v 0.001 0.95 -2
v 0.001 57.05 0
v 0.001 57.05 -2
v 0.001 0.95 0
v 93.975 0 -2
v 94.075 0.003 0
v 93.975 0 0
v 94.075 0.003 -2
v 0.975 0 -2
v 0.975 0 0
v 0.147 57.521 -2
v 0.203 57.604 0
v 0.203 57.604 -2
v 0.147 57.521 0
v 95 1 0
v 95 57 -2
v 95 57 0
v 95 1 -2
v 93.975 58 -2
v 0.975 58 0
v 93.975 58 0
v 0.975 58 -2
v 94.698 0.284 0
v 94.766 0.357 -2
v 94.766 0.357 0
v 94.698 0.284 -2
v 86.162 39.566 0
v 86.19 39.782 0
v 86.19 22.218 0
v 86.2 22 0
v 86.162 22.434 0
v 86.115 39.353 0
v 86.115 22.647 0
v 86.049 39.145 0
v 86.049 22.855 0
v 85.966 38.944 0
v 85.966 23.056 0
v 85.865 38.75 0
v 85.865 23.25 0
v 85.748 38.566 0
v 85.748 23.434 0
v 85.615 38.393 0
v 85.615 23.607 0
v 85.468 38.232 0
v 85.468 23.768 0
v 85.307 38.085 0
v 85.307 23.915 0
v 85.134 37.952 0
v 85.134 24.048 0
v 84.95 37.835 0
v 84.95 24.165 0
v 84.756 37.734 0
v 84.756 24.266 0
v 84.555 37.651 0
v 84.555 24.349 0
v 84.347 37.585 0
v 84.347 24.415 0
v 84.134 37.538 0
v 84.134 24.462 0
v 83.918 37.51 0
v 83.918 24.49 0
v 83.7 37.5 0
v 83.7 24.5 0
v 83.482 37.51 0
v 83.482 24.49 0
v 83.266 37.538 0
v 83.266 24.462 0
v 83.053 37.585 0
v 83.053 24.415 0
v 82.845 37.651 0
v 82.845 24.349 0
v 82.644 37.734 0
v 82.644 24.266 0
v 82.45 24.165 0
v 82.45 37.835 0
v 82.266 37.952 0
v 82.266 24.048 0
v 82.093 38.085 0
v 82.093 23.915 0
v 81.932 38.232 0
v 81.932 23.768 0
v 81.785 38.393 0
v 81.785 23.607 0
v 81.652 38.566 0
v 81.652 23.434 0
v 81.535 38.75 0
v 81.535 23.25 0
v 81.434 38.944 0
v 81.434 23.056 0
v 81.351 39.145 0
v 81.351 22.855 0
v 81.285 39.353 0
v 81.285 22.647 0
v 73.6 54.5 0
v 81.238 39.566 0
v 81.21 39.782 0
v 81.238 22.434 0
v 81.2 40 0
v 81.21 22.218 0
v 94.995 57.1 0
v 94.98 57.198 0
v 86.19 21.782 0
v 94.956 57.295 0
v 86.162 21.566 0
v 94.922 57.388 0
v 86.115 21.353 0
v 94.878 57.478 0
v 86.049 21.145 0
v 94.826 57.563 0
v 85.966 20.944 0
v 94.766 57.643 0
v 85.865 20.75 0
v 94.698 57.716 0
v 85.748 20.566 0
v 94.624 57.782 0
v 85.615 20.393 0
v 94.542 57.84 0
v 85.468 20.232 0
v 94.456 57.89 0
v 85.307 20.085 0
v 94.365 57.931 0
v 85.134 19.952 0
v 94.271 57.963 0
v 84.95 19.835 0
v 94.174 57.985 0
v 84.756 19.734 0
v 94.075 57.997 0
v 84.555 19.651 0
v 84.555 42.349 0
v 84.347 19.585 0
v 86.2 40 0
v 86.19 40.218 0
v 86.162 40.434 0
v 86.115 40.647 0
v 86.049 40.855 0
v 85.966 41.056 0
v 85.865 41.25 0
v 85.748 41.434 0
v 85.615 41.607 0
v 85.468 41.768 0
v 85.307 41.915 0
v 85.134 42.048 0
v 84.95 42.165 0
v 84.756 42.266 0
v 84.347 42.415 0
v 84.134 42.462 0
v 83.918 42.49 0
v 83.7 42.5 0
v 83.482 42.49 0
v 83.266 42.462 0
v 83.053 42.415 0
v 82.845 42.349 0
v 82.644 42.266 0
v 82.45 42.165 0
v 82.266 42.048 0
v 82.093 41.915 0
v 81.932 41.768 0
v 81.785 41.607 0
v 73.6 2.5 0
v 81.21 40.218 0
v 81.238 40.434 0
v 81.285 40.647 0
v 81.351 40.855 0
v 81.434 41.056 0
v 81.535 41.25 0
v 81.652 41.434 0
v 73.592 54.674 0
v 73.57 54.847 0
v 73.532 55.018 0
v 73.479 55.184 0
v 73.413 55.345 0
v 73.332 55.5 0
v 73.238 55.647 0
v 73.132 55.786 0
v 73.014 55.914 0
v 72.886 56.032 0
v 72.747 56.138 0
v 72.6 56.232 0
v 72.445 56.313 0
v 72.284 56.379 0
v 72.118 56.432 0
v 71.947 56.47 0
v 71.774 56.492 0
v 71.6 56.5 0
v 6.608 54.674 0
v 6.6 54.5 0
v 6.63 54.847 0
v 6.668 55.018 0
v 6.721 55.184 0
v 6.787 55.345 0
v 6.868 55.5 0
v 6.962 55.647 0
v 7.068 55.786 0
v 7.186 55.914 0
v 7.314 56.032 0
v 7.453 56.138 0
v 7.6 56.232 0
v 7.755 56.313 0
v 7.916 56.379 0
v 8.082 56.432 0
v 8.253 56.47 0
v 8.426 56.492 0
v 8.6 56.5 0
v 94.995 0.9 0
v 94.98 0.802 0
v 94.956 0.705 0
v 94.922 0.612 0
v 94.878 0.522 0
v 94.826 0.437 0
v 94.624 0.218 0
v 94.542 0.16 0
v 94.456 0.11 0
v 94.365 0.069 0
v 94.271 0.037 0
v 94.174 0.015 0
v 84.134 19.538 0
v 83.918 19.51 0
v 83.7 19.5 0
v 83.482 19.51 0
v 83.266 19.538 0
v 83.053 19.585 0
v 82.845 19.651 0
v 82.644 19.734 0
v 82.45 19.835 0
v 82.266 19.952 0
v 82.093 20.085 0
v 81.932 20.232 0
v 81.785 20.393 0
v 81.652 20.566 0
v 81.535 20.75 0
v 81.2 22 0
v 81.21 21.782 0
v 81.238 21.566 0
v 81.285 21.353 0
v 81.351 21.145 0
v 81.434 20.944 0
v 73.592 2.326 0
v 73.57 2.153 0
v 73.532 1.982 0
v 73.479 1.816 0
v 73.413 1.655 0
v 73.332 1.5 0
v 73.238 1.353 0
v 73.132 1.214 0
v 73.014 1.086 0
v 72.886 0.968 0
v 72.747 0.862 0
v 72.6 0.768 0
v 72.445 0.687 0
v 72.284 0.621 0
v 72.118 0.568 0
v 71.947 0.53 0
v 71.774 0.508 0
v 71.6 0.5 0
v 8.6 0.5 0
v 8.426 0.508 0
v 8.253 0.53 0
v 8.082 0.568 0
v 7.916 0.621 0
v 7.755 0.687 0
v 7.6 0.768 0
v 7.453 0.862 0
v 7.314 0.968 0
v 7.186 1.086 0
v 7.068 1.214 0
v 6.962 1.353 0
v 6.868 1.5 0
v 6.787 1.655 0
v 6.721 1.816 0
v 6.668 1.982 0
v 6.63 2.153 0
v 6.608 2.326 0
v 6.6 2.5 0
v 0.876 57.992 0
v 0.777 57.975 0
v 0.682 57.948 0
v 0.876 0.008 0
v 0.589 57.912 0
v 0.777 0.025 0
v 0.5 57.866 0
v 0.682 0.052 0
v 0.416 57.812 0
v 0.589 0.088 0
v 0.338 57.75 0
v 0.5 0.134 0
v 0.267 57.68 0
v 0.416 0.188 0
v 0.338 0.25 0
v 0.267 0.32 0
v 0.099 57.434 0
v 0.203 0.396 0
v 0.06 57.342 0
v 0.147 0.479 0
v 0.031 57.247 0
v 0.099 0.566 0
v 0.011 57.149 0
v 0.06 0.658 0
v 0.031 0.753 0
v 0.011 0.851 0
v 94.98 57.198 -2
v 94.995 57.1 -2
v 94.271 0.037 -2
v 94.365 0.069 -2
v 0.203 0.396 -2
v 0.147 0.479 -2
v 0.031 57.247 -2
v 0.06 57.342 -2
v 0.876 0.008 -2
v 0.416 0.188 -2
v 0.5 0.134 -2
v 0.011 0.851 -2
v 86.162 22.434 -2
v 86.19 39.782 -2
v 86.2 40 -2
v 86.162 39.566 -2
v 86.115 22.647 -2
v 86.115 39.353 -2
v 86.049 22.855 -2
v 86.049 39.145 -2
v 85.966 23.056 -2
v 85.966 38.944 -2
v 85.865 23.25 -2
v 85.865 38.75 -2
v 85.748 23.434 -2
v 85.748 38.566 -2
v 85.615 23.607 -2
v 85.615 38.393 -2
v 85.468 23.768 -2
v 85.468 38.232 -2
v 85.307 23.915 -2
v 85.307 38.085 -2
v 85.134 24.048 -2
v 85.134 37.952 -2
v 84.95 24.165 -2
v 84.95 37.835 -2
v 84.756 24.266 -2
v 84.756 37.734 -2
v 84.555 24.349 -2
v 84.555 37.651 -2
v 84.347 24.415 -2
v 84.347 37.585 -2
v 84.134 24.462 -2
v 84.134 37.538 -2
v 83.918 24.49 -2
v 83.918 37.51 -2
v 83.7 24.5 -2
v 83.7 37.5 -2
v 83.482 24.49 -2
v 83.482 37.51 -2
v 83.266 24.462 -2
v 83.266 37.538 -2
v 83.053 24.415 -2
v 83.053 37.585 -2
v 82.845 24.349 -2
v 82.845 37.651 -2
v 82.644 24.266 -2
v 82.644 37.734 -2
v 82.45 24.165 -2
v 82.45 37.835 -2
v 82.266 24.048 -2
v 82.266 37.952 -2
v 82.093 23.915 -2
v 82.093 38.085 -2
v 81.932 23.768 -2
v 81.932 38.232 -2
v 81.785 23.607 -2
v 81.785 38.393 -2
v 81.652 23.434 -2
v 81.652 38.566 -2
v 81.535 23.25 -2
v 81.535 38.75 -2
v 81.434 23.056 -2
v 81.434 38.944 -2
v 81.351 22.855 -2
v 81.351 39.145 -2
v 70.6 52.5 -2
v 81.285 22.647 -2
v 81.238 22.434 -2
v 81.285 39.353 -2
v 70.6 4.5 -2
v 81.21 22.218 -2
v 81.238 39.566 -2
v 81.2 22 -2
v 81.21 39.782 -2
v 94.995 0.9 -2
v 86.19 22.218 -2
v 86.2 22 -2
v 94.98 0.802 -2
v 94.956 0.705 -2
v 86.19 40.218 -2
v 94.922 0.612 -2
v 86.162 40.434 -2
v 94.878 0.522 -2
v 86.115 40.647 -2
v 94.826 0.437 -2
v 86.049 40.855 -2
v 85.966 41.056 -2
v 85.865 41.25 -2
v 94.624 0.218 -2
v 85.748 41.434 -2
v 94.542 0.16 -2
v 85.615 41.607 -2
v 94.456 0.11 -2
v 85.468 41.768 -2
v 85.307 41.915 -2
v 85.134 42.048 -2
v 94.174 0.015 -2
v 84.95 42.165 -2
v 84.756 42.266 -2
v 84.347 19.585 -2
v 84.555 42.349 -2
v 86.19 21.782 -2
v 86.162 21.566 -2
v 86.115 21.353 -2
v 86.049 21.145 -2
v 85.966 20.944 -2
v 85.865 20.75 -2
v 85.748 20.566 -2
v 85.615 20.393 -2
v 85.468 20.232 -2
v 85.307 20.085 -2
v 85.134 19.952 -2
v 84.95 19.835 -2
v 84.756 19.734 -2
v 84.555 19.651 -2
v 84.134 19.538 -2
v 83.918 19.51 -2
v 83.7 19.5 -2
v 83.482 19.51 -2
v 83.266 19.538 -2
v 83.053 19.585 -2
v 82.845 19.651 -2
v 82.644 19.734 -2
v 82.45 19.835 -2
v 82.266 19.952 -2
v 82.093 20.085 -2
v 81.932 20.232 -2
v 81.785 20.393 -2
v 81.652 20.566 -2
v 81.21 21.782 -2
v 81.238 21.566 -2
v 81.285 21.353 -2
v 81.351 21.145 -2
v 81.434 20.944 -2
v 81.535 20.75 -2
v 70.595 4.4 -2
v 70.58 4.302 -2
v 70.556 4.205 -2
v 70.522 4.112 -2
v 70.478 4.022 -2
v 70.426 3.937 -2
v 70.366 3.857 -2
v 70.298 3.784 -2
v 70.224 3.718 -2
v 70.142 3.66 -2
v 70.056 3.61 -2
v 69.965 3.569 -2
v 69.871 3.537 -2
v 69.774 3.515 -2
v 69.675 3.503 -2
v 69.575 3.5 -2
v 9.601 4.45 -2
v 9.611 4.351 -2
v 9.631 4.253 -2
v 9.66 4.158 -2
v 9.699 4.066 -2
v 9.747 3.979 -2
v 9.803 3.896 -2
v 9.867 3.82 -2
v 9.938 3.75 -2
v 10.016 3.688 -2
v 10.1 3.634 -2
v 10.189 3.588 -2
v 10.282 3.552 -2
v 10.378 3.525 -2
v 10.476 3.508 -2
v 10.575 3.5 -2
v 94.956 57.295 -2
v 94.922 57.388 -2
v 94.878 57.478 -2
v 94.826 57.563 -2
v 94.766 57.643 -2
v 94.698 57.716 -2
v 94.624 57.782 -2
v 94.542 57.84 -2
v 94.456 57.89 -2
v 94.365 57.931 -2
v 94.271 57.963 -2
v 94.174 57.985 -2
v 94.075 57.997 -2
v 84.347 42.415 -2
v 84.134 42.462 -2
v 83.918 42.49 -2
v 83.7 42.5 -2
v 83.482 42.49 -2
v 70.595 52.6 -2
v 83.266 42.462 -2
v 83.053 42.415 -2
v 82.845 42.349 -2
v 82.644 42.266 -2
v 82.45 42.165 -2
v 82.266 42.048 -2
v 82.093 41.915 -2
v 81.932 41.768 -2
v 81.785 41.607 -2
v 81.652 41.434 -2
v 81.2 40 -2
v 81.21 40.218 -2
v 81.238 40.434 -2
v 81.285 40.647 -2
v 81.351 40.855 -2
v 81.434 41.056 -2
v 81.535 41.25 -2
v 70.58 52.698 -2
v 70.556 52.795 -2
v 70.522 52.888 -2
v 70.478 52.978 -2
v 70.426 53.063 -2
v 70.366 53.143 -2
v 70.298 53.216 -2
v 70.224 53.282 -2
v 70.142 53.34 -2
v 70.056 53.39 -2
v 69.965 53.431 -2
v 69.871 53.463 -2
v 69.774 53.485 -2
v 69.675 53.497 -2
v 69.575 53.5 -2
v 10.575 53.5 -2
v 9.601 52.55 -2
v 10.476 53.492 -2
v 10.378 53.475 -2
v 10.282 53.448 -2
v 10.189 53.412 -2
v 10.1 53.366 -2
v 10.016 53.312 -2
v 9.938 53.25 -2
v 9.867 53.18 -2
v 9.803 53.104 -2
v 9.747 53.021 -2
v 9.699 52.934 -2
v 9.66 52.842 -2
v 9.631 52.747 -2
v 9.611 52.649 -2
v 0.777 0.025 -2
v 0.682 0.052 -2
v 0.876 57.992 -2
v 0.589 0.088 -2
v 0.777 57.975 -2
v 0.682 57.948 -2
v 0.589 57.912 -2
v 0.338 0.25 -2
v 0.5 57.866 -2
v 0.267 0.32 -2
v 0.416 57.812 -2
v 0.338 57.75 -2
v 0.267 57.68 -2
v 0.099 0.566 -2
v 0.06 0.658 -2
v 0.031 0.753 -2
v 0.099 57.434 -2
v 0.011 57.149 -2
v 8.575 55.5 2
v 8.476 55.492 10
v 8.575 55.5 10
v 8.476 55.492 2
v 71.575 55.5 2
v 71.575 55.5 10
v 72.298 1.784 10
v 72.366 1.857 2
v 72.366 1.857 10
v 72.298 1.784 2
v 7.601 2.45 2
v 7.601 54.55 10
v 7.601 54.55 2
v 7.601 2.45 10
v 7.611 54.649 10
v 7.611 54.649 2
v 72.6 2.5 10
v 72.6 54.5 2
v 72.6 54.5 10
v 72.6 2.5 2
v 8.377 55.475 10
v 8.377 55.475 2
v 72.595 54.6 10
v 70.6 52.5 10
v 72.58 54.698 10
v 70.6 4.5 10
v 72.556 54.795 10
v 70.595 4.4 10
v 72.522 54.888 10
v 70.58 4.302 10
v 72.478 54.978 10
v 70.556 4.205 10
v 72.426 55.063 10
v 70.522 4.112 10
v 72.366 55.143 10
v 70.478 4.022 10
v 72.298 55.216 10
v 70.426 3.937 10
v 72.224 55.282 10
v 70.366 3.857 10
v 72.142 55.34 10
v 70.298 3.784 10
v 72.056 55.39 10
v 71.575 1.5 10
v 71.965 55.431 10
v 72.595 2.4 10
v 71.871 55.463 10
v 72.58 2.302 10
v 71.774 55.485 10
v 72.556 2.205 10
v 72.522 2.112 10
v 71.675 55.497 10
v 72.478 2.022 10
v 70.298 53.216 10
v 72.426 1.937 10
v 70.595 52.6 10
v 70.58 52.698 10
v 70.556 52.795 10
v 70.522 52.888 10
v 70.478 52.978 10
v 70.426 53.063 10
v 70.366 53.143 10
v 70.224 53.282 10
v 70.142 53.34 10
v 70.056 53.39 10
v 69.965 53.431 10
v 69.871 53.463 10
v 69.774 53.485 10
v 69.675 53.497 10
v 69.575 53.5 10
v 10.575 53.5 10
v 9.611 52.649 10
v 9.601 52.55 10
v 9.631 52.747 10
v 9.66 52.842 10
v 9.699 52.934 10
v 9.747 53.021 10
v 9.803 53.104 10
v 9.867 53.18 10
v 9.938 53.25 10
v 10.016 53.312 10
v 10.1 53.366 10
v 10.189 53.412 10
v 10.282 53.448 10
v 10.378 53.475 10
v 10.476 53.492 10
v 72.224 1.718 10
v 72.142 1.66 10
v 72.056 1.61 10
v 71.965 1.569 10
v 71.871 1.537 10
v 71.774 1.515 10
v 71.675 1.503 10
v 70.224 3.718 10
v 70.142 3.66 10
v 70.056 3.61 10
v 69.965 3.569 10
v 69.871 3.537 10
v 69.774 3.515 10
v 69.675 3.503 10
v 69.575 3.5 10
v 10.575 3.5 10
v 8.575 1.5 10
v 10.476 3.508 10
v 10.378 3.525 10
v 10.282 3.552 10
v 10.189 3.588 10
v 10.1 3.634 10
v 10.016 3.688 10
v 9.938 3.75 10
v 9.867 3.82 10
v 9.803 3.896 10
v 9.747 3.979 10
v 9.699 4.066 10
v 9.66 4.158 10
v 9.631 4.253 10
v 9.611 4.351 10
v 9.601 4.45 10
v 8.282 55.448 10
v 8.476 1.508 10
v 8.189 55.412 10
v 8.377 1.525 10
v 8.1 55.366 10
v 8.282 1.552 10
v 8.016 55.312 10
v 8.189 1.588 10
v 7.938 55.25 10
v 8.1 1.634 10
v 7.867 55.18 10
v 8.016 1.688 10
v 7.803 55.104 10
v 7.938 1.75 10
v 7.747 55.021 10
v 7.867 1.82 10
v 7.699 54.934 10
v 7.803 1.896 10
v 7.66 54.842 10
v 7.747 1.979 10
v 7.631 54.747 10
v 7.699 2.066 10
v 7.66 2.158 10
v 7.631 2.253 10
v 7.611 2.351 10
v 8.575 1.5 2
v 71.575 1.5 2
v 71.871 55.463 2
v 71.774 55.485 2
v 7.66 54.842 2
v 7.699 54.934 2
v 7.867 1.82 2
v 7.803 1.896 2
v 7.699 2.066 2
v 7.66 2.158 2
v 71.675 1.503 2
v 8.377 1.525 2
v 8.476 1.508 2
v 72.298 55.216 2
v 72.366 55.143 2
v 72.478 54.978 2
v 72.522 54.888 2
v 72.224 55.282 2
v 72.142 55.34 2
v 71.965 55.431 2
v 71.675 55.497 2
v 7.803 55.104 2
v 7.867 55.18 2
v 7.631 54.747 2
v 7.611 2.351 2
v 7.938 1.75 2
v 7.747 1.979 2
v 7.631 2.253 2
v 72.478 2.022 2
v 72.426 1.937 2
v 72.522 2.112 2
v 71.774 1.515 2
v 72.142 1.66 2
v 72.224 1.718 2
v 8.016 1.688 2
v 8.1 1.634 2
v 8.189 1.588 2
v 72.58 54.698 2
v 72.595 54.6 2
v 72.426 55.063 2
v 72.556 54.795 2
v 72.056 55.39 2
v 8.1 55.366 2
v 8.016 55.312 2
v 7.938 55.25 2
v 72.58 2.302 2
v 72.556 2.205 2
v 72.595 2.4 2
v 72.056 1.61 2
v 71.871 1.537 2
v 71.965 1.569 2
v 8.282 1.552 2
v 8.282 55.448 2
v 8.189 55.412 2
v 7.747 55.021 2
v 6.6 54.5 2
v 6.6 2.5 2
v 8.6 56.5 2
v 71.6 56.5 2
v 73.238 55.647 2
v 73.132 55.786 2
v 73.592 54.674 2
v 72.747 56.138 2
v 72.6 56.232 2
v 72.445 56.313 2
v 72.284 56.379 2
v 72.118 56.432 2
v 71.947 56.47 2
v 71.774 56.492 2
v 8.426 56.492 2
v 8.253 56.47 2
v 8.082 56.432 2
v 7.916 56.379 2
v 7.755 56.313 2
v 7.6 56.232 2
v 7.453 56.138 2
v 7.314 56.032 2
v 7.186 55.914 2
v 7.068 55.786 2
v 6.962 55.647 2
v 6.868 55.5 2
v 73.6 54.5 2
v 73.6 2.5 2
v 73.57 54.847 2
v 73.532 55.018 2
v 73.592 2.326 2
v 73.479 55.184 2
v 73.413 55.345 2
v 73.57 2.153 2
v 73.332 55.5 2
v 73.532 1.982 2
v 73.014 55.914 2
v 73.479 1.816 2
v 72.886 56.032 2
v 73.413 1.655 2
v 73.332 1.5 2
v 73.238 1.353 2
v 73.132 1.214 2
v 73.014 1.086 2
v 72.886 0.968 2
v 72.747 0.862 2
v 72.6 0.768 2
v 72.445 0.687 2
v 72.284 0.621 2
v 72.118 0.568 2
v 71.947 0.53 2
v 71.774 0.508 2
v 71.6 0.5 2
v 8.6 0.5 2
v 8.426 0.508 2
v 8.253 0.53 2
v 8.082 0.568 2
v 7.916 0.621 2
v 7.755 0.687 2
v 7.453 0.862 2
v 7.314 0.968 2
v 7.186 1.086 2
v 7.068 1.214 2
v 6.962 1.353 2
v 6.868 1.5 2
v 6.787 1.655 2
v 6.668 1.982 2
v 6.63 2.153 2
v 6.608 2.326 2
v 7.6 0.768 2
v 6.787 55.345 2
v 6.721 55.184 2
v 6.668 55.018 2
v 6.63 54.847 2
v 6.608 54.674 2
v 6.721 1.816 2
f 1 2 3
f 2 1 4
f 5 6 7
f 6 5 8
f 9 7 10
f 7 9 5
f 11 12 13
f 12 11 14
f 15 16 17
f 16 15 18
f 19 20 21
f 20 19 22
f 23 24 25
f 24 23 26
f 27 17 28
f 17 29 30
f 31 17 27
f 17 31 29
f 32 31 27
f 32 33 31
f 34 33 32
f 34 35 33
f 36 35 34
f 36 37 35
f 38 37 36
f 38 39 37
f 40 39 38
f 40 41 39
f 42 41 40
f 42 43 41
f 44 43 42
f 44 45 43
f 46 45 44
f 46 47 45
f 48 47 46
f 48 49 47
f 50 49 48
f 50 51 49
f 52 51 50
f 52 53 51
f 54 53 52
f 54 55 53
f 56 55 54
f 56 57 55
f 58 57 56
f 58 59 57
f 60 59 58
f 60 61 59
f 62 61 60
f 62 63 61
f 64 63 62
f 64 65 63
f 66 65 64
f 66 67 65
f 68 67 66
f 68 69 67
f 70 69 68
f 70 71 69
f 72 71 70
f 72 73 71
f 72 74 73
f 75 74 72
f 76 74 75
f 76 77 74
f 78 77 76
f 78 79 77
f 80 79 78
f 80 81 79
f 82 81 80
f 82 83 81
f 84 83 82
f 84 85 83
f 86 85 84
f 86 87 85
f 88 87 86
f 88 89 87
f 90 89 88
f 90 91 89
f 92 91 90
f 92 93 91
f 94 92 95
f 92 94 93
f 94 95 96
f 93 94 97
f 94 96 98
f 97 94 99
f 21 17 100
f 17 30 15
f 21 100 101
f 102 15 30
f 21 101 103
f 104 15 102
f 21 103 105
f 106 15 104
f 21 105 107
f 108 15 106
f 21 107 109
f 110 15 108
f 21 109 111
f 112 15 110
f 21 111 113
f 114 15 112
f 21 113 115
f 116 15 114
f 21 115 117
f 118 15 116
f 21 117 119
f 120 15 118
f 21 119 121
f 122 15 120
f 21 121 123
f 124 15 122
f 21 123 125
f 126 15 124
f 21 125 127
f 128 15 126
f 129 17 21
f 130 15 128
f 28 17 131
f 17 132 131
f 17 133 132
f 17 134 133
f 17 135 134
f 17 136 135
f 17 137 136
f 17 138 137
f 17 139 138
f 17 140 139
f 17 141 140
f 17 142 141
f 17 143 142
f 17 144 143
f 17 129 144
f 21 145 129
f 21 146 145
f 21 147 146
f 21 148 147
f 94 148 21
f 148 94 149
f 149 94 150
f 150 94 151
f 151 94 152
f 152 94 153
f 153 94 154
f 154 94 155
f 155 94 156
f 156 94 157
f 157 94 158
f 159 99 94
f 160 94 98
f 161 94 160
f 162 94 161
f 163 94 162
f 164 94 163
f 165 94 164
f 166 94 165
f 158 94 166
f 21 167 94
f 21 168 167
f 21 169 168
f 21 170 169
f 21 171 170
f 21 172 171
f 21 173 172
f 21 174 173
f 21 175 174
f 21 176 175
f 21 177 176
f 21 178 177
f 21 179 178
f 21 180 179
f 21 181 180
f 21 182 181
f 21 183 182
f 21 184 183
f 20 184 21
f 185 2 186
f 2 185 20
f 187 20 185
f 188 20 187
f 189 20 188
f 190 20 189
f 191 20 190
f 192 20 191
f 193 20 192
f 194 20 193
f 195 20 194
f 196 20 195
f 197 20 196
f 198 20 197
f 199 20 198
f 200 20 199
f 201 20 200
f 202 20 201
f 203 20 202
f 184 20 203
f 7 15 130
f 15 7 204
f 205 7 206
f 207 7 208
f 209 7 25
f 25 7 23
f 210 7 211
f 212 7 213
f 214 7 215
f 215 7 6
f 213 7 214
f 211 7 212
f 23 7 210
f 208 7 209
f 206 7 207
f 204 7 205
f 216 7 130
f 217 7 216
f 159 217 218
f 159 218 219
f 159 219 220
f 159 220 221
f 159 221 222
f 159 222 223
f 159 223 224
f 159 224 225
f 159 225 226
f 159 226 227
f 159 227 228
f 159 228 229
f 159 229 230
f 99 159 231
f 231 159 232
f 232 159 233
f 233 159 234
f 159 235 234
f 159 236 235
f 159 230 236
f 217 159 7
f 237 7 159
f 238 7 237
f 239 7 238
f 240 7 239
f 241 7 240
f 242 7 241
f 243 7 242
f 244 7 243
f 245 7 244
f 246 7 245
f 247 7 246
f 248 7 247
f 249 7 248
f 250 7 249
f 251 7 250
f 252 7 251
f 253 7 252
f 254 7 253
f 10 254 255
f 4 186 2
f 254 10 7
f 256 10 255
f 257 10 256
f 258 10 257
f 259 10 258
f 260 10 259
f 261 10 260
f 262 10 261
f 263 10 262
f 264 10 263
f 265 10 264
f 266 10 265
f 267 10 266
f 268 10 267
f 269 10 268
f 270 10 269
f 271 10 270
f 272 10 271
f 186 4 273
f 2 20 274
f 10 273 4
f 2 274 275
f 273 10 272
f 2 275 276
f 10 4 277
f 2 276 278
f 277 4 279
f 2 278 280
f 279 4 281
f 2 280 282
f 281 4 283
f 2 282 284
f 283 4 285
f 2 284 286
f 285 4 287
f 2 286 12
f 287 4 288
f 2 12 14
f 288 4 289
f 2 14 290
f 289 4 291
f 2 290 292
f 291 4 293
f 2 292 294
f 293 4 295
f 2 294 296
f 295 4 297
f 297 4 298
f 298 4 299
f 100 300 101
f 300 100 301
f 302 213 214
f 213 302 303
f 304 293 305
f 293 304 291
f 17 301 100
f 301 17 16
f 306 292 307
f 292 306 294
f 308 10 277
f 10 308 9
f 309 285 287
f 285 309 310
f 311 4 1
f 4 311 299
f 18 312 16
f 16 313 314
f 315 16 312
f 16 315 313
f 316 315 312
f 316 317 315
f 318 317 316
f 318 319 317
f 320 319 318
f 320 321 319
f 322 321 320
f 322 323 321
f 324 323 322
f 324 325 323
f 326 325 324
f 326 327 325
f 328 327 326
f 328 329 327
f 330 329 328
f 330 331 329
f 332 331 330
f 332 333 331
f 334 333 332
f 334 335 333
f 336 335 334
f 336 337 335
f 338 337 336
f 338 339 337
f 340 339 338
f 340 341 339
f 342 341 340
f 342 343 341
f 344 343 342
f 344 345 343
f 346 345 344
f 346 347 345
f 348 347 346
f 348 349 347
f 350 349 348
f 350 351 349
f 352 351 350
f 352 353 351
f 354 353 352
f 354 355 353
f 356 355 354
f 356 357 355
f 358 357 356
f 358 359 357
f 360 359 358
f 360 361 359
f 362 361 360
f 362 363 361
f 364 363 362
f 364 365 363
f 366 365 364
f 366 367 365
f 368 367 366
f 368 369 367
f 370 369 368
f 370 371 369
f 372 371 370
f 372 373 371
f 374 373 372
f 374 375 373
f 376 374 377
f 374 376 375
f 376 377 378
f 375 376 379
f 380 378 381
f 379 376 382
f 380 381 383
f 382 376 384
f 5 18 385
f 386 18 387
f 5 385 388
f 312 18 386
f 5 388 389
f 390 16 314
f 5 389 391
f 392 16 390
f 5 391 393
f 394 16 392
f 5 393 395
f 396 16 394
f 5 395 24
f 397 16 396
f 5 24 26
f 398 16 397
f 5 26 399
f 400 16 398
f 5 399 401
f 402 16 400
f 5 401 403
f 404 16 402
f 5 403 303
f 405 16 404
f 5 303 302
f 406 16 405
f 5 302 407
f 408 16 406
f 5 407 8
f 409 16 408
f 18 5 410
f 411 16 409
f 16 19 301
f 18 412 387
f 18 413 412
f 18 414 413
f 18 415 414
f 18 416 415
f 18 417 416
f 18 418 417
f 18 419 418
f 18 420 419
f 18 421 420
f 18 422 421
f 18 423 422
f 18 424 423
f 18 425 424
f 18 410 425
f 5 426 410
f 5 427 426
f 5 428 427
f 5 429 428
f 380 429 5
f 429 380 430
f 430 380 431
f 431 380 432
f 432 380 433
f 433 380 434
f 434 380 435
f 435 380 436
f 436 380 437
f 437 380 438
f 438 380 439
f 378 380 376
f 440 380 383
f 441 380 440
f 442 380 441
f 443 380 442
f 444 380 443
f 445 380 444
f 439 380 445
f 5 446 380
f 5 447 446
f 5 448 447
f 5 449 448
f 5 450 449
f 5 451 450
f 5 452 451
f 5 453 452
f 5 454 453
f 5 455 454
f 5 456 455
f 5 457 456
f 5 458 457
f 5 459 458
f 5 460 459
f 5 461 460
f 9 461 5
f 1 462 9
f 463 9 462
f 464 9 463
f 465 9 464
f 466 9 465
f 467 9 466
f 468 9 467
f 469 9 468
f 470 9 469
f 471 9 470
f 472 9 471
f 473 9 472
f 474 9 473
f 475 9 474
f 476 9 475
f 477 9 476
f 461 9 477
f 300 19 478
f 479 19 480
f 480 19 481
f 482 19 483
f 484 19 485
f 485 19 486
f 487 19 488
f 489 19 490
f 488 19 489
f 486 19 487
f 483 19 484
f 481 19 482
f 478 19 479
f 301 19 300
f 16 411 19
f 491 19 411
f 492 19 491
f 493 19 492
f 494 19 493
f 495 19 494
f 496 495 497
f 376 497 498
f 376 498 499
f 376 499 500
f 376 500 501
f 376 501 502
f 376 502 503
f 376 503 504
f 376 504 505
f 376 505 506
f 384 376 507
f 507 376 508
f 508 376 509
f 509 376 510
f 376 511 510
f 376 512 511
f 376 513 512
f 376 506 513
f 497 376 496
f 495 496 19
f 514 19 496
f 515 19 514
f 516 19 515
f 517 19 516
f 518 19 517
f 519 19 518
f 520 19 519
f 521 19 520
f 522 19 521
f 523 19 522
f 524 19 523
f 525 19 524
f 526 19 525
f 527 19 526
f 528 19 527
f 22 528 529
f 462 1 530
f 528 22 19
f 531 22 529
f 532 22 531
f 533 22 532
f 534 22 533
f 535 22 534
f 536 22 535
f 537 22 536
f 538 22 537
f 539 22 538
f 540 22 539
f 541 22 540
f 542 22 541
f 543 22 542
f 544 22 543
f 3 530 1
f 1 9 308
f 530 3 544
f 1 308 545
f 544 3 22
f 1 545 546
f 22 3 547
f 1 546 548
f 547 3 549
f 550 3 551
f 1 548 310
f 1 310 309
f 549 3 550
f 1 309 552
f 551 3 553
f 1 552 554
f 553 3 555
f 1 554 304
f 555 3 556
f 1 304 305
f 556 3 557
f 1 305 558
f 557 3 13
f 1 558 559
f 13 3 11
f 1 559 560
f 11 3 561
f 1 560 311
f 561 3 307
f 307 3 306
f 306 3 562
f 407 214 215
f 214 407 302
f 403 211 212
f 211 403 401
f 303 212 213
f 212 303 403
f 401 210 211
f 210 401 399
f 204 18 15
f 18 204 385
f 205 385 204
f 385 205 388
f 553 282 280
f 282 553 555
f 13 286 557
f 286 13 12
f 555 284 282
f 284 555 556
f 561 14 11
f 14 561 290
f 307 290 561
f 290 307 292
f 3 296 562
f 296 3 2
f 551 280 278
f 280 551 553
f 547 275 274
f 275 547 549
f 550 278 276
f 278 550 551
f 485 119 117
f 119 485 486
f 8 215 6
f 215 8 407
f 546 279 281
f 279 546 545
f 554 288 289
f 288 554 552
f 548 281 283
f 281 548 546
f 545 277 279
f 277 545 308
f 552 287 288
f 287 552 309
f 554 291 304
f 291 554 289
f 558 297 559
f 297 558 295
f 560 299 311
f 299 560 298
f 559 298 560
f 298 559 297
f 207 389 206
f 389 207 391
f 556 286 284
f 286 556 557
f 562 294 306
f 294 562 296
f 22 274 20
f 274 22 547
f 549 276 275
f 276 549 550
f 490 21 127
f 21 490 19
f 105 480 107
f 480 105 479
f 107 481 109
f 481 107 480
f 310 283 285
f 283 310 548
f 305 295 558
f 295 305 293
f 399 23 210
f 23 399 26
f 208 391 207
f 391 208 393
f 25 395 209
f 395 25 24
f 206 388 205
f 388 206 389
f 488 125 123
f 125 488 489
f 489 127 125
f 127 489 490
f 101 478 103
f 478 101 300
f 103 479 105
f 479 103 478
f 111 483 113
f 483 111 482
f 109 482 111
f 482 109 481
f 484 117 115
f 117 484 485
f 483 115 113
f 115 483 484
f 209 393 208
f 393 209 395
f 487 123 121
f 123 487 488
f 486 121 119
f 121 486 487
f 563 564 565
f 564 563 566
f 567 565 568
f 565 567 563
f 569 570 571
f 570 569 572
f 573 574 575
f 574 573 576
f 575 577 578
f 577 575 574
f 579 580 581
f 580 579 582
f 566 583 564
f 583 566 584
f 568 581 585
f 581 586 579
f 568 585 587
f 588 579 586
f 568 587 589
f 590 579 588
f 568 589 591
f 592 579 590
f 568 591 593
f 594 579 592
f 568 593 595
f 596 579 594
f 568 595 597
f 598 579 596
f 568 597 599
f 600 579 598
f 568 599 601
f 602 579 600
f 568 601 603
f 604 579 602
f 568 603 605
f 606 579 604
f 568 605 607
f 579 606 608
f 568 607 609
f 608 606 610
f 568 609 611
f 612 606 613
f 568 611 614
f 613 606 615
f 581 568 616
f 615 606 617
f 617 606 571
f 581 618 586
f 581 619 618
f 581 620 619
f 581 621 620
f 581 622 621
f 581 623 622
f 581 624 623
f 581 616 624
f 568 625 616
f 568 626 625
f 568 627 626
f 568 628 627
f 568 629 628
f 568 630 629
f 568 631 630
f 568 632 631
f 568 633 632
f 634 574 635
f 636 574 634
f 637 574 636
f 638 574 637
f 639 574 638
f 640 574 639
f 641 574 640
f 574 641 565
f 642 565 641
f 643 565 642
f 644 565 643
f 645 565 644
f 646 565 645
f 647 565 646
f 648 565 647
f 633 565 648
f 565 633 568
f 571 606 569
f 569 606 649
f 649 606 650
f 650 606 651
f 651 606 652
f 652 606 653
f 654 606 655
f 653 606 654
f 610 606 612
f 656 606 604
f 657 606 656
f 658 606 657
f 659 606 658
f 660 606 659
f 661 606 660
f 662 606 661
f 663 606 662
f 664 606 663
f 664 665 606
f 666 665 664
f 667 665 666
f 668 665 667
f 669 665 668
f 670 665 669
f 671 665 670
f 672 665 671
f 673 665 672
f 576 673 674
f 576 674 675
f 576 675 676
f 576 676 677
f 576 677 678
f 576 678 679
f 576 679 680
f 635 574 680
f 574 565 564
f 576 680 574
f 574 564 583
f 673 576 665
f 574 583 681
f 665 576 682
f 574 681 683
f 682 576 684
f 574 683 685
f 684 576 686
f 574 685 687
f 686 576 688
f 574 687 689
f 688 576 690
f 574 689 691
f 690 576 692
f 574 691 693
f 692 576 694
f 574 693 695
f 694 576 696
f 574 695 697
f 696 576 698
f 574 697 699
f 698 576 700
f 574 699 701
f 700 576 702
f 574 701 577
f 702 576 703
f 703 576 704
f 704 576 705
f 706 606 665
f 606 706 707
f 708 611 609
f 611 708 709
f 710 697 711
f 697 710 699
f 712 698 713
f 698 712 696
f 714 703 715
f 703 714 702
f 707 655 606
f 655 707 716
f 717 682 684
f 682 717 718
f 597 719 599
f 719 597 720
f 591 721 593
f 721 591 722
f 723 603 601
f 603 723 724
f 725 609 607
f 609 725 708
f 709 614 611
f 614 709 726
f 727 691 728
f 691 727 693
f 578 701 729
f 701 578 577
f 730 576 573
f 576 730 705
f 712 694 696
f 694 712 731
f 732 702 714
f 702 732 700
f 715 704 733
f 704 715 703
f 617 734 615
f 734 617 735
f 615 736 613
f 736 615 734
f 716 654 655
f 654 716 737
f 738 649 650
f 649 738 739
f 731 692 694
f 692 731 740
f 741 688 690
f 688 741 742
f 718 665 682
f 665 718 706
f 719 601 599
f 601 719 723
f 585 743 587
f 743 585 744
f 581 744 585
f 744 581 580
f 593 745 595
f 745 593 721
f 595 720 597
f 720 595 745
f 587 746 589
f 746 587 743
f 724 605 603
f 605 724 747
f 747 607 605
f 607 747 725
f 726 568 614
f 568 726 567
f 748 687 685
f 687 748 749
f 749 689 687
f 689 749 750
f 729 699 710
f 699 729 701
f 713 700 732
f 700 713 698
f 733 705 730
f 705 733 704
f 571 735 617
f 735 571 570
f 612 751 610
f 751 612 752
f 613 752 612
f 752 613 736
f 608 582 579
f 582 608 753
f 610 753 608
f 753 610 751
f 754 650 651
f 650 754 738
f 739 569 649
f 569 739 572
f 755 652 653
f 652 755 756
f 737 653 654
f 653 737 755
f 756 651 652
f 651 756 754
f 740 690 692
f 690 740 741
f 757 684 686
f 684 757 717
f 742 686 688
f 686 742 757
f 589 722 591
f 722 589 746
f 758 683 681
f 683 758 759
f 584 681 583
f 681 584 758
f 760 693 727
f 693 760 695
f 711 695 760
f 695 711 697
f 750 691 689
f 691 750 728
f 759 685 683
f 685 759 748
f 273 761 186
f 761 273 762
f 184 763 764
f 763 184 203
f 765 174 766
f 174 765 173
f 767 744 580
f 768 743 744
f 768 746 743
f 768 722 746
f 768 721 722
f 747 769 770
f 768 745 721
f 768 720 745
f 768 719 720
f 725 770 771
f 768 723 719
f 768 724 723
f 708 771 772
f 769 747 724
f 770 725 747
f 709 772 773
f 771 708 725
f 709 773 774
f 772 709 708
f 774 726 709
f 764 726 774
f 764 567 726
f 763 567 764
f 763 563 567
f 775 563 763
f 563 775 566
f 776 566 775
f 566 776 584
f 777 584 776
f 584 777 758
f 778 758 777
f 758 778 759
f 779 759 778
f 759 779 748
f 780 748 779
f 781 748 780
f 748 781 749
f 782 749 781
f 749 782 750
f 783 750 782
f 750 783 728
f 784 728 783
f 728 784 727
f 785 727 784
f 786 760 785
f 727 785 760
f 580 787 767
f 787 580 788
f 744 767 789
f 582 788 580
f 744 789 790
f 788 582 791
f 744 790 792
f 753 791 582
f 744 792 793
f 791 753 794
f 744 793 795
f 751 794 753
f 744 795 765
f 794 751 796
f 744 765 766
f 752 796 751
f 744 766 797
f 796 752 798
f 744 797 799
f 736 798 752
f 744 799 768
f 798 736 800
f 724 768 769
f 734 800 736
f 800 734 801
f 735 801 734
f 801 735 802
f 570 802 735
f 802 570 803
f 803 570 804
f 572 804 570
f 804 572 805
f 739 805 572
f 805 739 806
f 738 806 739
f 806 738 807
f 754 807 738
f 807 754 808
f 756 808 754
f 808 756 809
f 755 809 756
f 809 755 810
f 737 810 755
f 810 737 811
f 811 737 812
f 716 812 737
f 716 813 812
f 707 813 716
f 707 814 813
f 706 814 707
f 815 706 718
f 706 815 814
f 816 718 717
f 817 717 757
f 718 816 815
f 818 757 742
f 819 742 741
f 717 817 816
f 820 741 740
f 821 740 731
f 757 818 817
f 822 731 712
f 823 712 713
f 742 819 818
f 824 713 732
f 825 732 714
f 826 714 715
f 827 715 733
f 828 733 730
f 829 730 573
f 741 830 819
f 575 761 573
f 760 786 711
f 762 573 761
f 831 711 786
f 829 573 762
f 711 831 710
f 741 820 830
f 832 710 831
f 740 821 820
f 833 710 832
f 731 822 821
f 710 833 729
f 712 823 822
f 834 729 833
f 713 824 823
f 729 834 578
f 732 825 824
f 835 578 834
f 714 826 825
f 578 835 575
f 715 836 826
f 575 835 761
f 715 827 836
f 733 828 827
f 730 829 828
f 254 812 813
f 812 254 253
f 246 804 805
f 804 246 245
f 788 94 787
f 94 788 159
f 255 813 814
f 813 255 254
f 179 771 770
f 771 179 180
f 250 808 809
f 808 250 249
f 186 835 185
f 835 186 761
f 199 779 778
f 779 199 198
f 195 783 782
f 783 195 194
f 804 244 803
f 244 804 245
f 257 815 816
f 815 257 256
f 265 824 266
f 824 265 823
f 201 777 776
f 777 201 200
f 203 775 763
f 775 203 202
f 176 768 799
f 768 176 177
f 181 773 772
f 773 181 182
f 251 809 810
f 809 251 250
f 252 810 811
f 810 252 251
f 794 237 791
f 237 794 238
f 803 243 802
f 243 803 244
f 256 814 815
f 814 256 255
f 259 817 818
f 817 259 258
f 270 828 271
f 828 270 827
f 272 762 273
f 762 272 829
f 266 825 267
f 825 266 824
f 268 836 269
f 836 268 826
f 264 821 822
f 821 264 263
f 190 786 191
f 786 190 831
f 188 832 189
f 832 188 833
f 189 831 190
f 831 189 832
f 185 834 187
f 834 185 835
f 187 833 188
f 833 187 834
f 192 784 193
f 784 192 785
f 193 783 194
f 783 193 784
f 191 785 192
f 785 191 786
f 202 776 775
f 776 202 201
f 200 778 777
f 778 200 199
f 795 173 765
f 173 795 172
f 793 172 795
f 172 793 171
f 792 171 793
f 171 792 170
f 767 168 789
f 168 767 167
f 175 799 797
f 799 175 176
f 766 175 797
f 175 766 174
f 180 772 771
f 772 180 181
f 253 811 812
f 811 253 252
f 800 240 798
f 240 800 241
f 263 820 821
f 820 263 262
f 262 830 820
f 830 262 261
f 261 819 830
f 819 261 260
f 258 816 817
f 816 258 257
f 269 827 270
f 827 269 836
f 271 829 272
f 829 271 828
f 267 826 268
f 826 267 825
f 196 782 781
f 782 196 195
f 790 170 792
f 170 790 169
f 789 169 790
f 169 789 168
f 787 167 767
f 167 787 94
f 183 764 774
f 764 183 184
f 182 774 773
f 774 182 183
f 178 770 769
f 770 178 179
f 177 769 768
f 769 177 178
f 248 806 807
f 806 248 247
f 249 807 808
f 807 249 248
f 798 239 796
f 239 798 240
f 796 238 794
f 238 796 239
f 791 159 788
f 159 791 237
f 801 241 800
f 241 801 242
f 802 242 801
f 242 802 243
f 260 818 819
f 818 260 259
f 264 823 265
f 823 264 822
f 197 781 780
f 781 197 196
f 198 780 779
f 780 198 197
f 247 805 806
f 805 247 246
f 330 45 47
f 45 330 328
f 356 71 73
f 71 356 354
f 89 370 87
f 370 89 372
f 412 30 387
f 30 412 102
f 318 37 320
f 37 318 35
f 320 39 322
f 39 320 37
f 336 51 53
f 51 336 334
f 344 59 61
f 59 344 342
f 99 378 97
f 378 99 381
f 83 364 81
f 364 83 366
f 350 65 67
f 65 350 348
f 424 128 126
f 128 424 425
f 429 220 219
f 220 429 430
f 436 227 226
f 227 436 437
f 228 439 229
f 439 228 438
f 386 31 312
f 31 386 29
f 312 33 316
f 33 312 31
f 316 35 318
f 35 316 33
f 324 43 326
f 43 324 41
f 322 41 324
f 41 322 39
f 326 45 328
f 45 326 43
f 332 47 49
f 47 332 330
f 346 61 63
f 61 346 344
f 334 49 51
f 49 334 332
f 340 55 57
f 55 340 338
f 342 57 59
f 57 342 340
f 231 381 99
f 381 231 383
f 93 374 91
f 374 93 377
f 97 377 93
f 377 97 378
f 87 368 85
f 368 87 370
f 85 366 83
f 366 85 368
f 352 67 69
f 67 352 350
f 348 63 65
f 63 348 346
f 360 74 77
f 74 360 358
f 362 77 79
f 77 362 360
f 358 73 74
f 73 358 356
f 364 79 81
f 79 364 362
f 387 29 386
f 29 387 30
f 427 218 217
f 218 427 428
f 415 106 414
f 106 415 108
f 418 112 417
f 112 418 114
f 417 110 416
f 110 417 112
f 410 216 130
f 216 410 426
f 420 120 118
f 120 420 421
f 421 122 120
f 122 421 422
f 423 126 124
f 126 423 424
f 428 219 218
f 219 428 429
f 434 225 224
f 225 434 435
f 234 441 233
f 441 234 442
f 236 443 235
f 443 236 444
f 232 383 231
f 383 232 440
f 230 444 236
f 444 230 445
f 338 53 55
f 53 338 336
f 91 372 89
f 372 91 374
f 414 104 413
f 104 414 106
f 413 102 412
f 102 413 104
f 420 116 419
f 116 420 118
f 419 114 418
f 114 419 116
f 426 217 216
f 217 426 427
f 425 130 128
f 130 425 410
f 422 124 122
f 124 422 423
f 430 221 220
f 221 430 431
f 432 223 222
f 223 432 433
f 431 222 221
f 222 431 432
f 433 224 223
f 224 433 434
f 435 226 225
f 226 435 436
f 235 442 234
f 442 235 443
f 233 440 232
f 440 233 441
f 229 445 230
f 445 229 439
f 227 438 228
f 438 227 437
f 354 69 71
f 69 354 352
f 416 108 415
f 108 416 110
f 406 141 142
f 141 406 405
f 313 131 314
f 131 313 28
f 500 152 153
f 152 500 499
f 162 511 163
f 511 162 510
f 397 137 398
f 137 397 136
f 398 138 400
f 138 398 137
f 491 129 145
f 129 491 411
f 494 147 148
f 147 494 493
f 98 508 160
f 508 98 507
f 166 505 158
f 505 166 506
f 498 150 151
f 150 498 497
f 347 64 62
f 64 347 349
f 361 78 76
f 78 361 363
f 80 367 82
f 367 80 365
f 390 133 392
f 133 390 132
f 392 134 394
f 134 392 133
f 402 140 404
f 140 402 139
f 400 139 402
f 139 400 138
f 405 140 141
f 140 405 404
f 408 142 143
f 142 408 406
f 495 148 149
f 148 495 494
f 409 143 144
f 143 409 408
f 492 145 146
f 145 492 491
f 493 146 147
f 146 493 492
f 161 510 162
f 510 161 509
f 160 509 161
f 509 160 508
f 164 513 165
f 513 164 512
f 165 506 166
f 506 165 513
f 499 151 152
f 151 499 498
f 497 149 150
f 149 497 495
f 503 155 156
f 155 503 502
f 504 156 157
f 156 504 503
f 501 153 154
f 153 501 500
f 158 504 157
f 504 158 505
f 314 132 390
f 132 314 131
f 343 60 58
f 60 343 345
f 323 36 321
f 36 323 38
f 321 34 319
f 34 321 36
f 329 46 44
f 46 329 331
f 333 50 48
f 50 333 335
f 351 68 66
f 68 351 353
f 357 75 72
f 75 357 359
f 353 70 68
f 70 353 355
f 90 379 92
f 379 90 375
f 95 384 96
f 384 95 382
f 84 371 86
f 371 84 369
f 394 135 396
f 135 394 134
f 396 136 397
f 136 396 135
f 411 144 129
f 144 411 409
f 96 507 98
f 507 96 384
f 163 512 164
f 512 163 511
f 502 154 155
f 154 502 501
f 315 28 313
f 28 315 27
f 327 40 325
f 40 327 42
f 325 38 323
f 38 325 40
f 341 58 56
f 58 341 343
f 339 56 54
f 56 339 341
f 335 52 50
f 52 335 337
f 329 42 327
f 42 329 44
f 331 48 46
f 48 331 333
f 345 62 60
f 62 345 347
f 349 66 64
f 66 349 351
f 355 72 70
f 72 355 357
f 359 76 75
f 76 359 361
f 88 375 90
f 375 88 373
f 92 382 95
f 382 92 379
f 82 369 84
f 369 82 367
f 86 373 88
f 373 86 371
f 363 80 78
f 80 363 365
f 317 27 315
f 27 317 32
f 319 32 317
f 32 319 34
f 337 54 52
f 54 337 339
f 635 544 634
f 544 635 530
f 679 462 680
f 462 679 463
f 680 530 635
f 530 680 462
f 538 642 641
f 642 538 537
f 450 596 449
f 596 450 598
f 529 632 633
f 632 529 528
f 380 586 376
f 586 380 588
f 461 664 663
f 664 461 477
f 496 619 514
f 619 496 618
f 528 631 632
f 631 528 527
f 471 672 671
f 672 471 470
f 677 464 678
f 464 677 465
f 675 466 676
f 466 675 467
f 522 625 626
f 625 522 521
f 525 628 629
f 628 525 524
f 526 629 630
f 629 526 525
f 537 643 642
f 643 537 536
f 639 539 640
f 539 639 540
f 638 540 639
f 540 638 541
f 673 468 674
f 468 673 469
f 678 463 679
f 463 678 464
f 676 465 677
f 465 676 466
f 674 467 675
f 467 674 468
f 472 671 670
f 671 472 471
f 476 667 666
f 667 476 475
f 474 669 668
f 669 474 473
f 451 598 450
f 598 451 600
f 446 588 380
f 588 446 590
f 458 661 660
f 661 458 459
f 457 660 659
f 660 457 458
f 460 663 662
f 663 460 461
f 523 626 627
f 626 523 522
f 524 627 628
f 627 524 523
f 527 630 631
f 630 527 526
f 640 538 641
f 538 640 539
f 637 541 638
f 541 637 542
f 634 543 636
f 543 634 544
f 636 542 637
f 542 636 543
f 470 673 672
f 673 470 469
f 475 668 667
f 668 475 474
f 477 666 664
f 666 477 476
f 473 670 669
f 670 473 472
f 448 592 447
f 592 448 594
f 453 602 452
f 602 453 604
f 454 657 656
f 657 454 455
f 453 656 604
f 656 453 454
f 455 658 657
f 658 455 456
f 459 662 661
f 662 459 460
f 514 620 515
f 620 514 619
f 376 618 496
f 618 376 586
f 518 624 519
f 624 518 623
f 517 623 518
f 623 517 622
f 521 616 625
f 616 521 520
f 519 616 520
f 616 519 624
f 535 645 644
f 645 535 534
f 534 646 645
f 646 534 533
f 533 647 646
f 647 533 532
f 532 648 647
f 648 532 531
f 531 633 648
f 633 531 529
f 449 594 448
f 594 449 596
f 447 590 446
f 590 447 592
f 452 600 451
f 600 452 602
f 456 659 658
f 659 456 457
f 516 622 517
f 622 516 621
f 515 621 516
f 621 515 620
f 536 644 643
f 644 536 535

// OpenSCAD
$fa=5; $fs=0.1;

W=95;
H=58;
R=1;


difference(){
    
    union(){
    
        hull(){ //основа
            translate([R,R,-1]) cylinder(r=R, h=2, center=true);
            translate([W-R,R,-1]) cylinder(r=R, h=2, center=true);
            translate([W-R,H-R,-1]) cylinder(r=R, h=2, center=true);
            translate([R,H-R,-1]) cylinder(r=R, h=2, center=true);
        }
        
        hull(){ //рамка
            translate([9.6-R,3.5-R,5]) {
                cylinder(r=R, h=10, center=true);
                translate([62+R, 0,0]) cylinder(r=R, h=10, center=true);
                translate([62+R, 51+R,0]) cylinder(r=R, h=10, center=true);
                translate([0, 51+R,0]) cylinder(r=R, h=10, center=true);
            }
        }
            
         hull(){ //подрамка
            translate([9.6-R,3.5-R,1]) {
                cylinder(r=R+1, h=2, center=true);
                translate([62+R, 0,0]) cylinder(r=R+1, h=2, center=true);
                translate([62+R, 51+R,0]) cylinder(r=R+1, h=2, center=true);
                translate([0, 51+R,0]) cylinder(r=R+1, h=2, center=true);
            }
        }
      
        
    }
    
    union(){
       
       hull(){ //рамка
              translate([9.6+1,3.5+1,5]) {
                cylinder(r=R, h=15, center=true);
                translate([62-R-2, 0,0]) cylinder(r=R, h=15, center=true);
                translate([62-R-2, 51-R-2,0]) cylinder(r=R, h=15, center=true);
                translate([0, 51-R-2,0]) cylinder(r=R, h=15, center=true);
            }
       } 
       
       translate([W-11.3, 22, -1]){ // под ручки
           cylinder(r=2.5, h=3, center=true);
           translate([0, 18, 0]) cylinder(r=2.5, h=3, center=true);
       }
    }
    
}
